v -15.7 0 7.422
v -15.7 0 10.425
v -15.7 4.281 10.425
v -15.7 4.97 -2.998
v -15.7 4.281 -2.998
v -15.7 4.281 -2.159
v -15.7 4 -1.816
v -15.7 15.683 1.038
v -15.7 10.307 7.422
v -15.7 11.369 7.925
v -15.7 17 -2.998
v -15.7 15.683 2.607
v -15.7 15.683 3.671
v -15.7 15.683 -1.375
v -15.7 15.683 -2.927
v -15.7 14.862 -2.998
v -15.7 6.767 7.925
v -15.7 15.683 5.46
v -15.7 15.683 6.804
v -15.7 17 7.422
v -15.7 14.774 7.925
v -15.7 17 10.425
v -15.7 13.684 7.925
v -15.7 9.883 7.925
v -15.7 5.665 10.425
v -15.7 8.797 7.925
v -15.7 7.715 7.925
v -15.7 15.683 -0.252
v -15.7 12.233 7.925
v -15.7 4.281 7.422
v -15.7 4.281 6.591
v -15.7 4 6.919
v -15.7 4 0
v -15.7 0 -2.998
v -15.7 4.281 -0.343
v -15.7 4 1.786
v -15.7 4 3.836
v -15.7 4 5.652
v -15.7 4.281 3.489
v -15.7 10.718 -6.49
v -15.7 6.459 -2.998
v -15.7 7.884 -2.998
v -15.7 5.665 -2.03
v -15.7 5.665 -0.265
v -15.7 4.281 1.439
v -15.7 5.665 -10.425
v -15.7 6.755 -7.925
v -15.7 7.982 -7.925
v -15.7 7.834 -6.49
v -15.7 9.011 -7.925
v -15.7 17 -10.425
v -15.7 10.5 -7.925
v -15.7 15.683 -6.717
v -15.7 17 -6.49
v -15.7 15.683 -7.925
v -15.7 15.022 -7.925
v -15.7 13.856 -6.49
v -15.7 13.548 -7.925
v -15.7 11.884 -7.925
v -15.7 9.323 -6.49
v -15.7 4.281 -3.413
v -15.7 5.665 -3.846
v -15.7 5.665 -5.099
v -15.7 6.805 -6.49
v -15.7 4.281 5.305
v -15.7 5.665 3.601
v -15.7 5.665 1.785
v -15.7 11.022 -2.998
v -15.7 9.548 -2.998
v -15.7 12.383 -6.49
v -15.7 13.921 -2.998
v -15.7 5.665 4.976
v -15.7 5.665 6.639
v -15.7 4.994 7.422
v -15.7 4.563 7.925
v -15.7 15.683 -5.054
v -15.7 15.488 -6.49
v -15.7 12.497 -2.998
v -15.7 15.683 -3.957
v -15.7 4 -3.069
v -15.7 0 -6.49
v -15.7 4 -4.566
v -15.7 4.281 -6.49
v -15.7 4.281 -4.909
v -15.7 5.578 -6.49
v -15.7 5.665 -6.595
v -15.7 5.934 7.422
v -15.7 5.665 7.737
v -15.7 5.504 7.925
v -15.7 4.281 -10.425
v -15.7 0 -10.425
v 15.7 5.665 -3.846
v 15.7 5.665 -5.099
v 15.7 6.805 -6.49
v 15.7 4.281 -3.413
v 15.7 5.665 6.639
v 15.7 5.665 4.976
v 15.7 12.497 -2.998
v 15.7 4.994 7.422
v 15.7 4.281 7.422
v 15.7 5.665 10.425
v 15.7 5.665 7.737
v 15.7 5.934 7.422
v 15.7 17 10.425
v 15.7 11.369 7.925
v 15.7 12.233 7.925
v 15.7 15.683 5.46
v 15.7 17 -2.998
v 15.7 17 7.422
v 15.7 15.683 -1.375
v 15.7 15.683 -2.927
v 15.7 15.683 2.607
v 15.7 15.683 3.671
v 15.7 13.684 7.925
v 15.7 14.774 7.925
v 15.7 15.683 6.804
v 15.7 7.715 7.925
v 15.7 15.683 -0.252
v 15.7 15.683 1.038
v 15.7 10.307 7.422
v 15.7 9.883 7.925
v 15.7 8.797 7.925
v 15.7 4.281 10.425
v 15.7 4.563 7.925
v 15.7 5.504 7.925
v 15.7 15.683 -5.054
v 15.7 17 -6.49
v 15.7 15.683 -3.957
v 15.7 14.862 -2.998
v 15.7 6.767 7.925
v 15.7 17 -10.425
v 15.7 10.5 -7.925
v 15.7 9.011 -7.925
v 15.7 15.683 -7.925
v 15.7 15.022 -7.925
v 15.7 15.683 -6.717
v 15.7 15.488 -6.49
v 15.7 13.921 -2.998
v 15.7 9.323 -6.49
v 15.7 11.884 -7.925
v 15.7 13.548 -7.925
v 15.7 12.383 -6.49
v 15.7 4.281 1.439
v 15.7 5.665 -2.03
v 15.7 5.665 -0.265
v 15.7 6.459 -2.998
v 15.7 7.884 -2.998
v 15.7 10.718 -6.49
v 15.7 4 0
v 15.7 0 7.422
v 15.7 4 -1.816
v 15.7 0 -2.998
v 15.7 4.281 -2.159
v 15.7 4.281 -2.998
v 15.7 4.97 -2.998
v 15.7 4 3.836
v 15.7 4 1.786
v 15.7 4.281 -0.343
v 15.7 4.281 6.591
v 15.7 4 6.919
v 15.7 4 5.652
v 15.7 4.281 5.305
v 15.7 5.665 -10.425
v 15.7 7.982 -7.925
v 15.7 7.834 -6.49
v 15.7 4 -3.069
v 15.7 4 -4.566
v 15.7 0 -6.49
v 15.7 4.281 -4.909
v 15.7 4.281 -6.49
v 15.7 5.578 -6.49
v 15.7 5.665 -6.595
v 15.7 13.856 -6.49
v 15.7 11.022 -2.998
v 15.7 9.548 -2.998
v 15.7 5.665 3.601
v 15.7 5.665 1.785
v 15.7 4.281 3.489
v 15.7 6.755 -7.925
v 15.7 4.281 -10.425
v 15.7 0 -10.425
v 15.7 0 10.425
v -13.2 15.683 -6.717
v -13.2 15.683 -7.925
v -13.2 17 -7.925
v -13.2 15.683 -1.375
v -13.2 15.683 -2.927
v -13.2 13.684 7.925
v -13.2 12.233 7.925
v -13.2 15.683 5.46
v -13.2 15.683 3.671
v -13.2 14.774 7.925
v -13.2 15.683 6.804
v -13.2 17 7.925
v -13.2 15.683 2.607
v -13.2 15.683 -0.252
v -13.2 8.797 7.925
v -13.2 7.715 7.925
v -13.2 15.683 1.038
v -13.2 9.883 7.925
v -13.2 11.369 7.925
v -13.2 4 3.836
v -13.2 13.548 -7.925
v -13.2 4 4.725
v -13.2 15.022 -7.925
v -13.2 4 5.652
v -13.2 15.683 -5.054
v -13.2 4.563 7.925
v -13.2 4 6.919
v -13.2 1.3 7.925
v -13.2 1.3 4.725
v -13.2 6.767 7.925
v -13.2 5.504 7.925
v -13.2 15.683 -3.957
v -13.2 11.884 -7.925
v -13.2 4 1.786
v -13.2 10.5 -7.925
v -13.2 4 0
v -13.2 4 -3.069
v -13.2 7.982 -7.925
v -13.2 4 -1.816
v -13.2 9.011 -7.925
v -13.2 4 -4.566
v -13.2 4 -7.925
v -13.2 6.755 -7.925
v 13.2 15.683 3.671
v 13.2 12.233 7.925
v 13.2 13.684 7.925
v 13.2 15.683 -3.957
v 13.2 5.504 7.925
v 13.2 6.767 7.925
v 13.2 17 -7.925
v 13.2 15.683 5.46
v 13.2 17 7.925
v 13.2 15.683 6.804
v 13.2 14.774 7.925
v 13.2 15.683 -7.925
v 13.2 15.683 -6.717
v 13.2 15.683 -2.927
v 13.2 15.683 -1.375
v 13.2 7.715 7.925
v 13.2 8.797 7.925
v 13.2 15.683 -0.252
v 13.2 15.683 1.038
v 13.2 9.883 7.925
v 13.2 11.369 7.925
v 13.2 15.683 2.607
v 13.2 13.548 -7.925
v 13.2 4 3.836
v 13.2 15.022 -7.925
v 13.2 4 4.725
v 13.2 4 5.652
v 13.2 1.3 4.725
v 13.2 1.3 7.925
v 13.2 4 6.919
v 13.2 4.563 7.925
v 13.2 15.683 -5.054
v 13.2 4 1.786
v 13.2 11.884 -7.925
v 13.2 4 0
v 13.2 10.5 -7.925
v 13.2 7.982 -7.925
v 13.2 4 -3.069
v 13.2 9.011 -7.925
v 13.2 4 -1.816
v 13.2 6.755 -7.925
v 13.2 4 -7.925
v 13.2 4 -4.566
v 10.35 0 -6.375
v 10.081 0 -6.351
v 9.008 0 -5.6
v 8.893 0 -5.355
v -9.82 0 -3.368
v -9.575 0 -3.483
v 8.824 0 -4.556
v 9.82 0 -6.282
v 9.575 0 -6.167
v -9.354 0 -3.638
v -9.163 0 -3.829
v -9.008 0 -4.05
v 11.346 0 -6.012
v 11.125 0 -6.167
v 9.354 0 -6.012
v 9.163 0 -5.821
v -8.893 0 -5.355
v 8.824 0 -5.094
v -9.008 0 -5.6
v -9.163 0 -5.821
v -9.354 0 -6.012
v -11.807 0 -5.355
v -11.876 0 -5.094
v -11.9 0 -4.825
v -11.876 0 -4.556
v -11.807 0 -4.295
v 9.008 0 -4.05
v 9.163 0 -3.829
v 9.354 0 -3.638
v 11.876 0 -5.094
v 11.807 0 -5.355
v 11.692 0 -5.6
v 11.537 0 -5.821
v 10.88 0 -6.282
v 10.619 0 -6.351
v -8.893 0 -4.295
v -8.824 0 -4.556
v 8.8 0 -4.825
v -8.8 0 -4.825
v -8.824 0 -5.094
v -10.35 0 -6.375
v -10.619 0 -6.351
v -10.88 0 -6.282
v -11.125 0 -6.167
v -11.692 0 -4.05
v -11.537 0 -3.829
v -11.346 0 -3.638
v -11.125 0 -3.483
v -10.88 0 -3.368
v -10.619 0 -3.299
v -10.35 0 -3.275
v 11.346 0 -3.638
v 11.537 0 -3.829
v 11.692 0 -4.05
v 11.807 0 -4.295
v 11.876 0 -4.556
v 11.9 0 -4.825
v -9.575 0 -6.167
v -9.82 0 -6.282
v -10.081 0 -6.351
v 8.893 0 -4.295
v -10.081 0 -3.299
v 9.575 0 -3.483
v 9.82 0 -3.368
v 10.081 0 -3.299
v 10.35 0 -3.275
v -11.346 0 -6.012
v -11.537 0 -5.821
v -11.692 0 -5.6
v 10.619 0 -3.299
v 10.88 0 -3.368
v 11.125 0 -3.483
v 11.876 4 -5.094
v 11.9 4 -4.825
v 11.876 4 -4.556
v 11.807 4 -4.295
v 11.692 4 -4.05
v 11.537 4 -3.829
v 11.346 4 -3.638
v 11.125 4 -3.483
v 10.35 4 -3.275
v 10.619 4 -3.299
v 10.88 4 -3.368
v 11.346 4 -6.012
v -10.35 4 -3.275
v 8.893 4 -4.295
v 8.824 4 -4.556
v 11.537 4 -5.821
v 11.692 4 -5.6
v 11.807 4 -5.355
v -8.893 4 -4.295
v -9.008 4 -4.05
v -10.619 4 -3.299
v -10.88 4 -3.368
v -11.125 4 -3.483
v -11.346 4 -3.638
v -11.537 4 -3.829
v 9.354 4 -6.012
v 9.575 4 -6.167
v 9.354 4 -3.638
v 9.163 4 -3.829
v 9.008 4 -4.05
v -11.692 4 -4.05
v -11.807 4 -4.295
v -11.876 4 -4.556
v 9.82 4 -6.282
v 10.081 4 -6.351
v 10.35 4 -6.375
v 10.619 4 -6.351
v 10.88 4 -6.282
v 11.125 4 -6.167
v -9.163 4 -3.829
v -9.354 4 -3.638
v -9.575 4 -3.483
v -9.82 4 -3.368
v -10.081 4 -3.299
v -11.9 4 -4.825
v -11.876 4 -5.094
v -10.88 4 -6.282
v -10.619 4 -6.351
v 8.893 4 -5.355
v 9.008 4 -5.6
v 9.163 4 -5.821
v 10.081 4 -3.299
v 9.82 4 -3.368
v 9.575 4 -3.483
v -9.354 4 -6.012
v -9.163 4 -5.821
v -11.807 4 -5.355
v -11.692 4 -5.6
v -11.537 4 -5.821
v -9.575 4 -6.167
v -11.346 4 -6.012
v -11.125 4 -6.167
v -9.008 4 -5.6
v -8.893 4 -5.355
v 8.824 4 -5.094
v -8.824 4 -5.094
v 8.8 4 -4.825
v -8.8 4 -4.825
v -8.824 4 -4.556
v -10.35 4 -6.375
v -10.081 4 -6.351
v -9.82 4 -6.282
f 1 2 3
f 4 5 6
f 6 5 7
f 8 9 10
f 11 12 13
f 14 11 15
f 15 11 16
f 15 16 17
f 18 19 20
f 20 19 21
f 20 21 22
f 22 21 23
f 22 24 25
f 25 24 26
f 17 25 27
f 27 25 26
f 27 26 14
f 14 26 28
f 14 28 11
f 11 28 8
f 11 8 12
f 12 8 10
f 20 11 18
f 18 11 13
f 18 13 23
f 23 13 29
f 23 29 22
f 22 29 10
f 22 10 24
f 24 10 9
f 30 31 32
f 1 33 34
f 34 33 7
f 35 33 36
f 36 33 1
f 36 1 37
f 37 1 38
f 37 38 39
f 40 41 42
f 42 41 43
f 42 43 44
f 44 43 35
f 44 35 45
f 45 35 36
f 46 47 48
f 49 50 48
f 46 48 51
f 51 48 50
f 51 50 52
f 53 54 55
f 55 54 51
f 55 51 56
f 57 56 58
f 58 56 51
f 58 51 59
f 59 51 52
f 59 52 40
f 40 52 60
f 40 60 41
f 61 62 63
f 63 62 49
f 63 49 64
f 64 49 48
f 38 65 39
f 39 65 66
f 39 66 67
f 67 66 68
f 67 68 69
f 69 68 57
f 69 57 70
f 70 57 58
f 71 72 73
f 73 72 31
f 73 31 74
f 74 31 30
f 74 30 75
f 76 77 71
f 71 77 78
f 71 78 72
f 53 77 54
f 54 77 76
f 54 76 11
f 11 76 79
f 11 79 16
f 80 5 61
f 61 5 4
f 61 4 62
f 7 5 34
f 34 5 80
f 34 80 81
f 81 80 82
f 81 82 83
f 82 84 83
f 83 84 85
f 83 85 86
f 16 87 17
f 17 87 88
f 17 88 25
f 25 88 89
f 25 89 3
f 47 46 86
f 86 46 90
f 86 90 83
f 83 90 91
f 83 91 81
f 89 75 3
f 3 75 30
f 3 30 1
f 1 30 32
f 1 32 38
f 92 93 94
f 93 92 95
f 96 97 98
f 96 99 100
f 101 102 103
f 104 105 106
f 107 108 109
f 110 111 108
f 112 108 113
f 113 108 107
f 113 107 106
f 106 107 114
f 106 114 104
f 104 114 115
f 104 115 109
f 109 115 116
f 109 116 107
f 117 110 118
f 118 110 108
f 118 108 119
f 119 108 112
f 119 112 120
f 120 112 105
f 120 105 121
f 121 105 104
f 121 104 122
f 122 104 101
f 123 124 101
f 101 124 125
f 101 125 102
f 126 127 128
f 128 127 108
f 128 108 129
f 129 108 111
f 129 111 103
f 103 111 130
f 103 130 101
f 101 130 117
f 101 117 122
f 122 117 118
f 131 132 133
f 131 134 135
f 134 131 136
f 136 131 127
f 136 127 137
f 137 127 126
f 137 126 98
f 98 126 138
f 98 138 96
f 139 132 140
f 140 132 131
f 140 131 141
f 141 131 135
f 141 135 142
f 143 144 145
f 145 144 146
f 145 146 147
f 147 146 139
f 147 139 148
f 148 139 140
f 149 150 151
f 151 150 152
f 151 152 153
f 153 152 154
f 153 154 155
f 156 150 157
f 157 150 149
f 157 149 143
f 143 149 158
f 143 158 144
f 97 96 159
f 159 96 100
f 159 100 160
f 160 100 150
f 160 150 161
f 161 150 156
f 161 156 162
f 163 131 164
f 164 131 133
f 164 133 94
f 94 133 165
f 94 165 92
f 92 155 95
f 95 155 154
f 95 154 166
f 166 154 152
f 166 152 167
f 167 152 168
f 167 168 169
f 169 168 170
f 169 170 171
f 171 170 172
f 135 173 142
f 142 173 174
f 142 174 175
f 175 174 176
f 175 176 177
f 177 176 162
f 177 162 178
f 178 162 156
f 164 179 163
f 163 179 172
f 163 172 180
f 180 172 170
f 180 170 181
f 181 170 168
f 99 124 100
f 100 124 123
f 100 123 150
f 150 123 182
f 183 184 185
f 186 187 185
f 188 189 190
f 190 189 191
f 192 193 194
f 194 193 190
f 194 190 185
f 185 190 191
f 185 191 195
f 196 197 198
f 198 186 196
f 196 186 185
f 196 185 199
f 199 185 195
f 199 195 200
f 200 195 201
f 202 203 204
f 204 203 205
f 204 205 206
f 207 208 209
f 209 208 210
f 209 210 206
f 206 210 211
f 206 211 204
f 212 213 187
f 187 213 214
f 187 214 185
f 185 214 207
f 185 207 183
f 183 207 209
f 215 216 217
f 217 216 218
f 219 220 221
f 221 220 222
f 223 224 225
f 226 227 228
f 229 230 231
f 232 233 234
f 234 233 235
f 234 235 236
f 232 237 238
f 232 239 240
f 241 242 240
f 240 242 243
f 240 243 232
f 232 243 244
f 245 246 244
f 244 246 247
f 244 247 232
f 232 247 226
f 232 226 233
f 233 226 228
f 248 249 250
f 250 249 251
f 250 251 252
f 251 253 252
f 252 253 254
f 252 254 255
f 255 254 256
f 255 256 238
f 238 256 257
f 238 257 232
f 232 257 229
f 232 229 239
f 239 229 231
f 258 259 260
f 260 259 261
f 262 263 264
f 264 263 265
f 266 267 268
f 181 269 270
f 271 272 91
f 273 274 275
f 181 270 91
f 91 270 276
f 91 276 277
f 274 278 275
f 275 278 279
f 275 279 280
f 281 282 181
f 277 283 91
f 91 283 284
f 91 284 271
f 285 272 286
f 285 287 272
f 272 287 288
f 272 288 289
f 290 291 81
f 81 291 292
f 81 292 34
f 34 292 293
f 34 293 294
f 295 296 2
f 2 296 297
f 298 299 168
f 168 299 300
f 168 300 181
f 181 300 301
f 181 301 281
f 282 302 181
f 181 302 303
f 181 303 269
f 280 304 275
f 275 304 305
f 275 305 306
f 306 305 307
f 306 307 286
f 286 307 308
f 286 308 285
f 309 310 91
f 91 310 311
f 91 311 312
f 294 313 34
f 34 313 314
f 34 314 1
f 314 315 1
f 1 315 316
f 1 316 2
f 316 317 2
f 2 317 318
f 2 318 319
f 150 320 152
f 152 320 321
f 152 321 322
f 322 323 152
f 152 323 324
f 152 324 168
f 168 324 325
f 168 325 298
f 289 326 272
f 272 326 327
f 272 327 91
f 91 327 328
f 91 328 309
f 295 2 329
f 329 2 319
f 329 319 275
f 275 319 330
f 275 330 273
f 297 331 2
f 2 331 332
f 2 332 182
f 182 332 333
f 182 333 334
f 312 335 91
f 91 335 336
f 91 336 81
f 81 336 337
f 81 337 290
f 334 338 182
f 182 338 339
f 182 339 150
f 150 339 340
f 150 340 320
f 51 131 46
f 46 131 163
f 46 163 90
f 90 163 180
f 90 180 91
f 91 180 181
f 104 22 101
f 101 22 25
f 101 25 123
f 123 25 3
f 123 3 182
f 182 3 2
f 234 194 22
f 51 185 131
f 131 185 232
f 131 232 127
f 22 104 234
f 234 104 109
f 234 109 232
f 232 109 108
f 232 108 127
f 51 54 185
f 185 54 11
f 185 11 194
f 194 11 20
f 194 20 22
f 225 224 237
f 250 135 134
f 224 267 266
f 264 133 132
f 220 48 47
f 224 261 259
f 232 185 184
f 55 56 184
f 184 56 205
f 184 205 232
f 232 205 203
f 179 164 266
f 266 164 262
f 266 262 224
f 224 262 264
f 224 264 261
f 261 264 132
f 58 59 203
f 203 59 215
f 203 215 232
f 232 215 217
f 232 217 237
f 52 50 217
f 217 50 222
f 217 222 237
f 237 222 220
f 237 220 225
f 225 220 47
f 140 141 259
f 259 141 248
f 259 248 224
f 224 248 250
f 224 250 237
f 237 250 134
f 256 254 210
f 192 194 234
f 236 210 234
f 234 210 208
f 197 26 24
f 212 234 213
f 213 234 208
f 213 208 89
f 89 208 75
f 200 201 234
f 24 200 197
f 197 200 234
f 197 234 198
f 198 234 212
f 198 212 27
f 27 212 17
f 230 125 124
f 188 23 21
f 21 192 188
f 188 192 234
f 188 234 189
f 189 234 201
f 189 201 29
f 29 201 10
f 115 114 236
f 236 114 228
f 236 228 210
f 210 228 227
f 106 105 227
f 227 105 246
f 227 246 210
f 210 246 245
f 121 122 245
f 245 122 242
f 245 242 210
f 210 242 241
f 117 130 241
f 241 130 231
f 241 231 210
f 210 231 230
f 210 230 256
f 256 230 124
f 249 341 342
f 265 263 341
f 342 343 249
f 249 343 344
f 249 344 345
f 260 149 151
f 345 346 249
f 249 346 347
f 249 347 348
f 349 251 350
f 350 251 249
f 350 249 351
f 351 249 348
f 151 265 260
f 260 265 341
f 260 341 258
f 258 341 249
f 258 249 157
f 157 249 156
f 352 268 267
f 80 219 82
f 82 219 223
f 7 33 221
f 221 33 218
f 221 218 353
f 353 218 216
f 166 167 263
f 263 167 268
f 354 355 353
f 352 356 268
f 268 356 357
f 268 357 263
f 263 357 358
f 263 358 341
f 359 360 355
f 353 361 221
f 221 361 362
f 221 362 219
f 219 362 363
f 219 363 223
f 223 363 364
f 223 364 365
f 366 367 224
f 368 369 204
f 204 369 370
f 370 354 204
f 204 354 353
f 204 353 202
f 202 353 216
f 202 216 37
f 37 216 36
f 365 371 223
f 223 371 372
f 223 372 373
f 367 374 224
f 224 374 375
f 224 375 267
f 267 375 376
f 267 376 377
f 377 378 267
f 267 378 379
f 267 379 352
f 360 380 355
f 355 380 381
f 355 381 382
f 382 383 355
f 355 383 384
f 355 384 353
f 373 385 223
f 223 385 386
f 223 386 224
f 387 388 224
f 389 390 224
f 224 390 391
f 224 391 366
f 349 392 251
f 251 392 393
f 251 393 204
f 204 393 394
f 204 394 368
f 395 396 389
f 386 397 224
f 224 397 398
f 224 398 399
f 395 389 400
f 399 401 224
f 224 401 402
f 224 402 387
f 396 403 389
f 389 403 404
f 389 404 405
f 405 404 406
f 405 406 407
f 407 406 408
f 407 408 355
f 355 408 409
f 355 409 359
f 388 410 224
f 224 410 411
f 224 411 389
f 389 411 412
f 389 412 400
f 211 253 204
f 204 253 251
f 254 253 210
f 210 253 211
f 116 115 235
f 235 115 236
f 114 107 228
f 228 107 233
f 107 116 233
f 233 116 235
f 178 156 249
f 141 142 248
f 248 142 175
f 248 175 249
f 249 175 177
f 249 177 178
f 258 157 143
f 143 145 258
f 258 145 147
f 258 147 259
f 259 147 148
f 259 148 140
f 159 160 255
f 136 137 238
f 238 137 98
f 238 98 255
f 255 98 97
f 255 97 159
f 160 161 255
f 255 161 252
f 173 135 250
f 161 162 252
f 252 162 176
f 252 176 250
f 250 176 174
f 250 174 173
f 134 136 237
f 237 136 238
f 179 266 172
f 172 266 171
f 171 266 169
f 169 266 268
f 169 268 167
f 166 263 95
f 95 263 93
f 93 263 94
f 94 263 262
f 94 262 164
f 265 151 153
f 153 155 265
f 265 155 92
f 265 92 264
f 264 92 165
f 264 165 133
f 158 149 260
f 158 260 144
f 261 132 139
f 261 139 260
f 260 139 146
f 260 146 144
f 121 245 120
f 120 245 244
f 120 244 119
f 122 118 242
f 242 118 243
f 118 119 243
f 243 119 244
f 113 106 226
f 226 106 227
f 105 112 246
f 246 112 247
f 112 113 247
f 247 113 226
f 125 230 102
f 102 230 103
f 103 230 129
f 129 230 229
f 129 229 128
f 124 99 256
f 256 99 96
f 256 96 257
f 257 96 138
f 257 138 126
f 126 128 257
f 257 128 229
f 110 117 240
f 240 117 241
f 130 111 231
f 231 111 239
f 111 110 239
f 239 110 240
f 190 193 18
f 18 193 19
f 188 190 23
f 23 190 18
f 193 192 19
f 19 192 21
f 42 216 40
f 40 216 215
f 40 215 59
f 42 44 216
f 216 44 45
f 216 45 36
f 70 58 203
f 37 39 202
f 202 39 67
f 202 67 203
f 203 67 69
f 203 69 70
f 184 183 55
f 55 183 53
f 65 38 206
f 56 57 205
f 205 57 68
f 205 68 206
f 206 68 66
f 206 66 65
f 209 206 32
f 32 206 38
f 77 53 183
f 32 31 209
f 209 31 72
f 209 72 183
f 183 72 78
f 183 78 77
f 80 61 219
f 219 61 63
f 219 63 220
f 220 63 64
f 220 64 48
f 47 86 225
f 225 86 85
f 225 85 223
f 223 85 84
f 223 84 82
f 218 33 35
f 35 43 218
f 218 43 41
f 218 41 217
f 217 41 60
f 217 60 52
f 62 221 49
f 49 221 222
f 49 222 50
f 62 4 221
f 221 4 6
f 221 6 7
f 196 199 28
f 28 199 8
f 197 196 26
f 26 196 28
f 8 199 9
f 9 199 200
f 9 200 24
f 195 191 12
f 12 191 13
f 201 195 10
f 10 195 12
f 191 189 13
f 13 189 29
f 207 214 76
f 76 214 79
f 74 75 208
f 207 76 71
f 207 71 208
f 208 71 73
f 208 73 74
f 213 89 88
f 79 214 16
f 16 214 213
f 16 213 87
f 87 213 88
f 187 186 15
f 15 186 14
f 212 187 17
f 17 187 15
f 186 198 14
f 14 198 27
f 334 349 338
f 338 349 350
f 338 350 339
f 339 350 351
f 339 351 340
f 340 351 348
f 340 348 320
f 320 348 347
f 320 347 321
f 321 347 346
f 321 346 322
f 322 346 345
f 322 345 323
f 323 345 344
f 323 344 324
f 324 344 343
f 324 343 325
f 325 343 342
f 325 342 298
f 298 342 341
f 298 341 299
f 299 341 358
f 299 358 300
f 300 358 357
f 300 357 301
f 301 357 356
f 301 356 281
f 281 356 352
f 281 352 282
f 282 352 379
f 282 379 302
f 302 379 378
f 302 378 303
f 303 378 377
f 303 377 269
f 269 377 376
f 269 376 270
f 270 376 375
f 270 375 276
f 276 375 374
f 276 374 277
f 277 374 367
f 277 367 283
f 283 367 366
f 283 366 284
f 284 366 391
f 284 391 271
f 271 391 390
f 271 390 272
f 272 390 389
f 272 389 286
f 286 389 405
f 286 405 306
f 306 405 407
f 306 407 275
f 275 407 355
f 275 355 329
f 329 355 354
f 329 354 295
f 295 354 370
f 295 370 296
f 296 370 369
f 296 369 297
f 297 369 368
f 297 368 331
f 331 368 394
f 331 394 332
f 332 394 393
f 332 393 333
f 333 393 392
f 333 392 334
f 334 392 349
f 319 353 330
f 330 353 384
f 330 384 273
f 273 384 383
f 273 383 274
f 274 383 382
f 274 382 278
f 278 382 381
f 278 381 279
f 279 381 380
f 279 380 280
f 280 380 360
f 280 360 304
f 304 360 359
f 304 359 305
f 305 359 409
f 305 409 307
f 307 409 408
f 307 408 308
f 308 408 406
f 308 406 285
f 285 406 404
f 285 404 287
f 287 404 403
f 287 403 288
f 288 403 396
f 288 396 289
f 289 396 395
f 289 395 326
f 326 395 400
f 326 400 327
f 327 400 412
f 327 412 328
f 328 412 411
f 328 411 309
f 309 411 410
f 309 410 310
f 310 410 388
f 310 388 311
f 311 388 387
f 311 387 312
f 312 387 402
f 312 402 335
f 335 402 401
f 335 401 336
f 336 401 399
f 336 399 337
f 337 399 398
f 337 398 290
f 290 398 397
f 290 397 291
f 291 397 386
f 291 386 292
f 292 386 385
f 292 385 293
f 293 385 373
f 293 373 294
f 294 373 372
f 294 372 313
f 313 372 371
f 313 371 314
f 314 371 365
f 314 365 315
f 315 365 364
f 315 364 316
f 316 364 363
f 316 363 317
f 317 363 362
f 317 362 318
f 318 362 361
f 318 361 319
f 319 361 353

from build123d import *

# Parameters (mm, degrees)
SKETCH1_W                 = 31.4
SKETCH1_H                 = 20.85
SKETCH1_W_2               = 26.4
SKETCH1_H_2               = 15.85
BOSS_EXTRUDE1_DEPTH       = 4
BOSS_EXTRUDE2_START       = 4
SKETCH1_3_W               = 31.4
SKETCH1_3_H               = 20.85
SKETCH1_3_W_2             = 26.4
SKETCH1_3_H_2             = 15.85
BOSS_EXTRUDE2_DEPTH       = 13
SKETCH2_W                 = 26.4
SKETCH2_H                 = 3.2
CUT_EXTRUDE1_DEPTH        = 2.7
CUT_EXTRUDE3_DEPTH        = 47.7
F_1_0MM_DOWEL_HOLE1_D     = 3.1
F_1_0MM_DOWEL_HOLE1_DEPTH = 54.068666041
F_1_0MM_DOWEL_HOLE1_TIP   = 0.931333959


with BuildPart() as part:
    # Sketch1 → Boss-Extrude1 (new body)
    # profile 1 of 2: a face of its own
    with BuildSketch(Plane(origin=(0, 0, 0), x_dir=(1, 0, 0), z_dir=(0, 1, 0))):
        Rectangle(SKETCH1_W, SKETCH1_H)
        Rectangle(SKETCH1_W_2, SKETCH1_H_2, mode=Mode.SUBTRACT)
    # profile 2 of 2: a face of its own
    with BuildSketch(Plane(origin=(0, 0, 0), x_dir=(1, 0, 0), z_dir=(0, 1, 0))):
        Rectangle(SKETCH1_W_2, SKETCH1_H_2)
    extrude(amount=BOSS_EXTRUDE1_DEPTH)

    # Sketch1<3> → Boss-Extrude2 (add)
    with BuildSketch(Plane(origin=(0, 0, 0), x_dir=(1, 0, 0), z_dir=(0, 1, 0)).offset(BOSS_EXTRUDE2_START)):
        Rectangle(SKETCH1_3_W, SKETCH1_3_H)
        Rectangle(SKETCH1_3_W_2, SKETCH1_3_H_2, mode=Mode.SUBTRACT)
    extrude(amount=BOSS_EXTRUDE2_DEPTH)

    # Sketch2 → Cut-Extrude1 (cut)
    with BuildSketch(Plane(origin=(0, 4, 0), x_dir=(1, 0, 0), z_dir=(0, 1, 0))):
        with Locations((0, -6.325)):
            Rectangle(SKETCH2_W, SKETCH2_H)
    extrude(amount=-CUT_EXTRUDE1_DEPTH, mode=Mode.SUBTRACT)

    # Sketch3 → Cut-Extrude3 (cut)
    with BuildSketch(Plane(origin=(15.7, 0, 0), x_dir=(0, 0, -1), z_dir=(1, 0, 0))):
        Polygon((-6.804269328, 15.68296106), (-5.459911982, 15.68296106), (-7.925, 13.683572471), (-7.925, 14.773956554), align=None)
        Polygon((-3.671214098, 15.68296106), (-2.606582105, 15.68296106), (-7.925, 11.369287886), (-7.925, 12.232791762), align=None)
        Polygon((-1.037778428, 15.68296106), (0.25170719, 15.68296106), (-7.925, 8.797268756), (-7.925, 9.883158343), align=None)
        Polygon((1.375357987, 15.68296106), (2.927105978, 15.68296106), (-7.925, 6.767025954), (-7.925, 7.714901357), align=None)
        Polygon((3.956505154, 15.68296106), (5.054465963, 15.68296106), (-7.925, 4.562834301), (-7.925, 5.503509627), align=None)
        Polygon((6.716922224, 15.68296106), (7.925, 15.68296106), (7.925, 15.021555077), (-5.65165104, 4), (-6.919486669, 4), align=None)
        Polygon((7.925, 11.883512977), (-1.786125509, 4), (-3.836107122, 4), (7.925, 13.547692544), align=None)
        Polygon((1.815680904, 4), (0, 4), (7.925, 10.5), (7.925, 9.010797996), align=None)
        Polygon((4.565545231, 4), (3.069437246, 4), (7.925, 7.982480493), (7.925, 6.755388769), align=None)
    extrude(amount=-CUT_EXTRUDE3_DEPTH, mode=Mode.SUBTRACT)

    # Ø1.0mm Dowel Hole1
    with Locations(Plane(origin=(0, 4, 0), x_dir=(1, 0, 0), z_dir=(0, 1, 0))):
        with Locations((-10.35, 4.825), (10.35, 4.825)):
            Hole(F_1_0MM_DOWEL_HOLE1_D / 2, depth=F_1_0MM_DOWEL_HOLE1_DEPTH)
            with Locations((0, 0, -(F_1_0MM_DOWEL_HOLE1_DEPTH + F_1_0MM_DOWEL_HOLE1_TIP / 2))):  # 118° drill point
                Cone(0, F_1_0MM_DOWEL_HOLE1_D / 2, F_1_0MM_DOWEL_HOLE1_TIP, mode=Mode.SUBTRACT)


solid = part.part
